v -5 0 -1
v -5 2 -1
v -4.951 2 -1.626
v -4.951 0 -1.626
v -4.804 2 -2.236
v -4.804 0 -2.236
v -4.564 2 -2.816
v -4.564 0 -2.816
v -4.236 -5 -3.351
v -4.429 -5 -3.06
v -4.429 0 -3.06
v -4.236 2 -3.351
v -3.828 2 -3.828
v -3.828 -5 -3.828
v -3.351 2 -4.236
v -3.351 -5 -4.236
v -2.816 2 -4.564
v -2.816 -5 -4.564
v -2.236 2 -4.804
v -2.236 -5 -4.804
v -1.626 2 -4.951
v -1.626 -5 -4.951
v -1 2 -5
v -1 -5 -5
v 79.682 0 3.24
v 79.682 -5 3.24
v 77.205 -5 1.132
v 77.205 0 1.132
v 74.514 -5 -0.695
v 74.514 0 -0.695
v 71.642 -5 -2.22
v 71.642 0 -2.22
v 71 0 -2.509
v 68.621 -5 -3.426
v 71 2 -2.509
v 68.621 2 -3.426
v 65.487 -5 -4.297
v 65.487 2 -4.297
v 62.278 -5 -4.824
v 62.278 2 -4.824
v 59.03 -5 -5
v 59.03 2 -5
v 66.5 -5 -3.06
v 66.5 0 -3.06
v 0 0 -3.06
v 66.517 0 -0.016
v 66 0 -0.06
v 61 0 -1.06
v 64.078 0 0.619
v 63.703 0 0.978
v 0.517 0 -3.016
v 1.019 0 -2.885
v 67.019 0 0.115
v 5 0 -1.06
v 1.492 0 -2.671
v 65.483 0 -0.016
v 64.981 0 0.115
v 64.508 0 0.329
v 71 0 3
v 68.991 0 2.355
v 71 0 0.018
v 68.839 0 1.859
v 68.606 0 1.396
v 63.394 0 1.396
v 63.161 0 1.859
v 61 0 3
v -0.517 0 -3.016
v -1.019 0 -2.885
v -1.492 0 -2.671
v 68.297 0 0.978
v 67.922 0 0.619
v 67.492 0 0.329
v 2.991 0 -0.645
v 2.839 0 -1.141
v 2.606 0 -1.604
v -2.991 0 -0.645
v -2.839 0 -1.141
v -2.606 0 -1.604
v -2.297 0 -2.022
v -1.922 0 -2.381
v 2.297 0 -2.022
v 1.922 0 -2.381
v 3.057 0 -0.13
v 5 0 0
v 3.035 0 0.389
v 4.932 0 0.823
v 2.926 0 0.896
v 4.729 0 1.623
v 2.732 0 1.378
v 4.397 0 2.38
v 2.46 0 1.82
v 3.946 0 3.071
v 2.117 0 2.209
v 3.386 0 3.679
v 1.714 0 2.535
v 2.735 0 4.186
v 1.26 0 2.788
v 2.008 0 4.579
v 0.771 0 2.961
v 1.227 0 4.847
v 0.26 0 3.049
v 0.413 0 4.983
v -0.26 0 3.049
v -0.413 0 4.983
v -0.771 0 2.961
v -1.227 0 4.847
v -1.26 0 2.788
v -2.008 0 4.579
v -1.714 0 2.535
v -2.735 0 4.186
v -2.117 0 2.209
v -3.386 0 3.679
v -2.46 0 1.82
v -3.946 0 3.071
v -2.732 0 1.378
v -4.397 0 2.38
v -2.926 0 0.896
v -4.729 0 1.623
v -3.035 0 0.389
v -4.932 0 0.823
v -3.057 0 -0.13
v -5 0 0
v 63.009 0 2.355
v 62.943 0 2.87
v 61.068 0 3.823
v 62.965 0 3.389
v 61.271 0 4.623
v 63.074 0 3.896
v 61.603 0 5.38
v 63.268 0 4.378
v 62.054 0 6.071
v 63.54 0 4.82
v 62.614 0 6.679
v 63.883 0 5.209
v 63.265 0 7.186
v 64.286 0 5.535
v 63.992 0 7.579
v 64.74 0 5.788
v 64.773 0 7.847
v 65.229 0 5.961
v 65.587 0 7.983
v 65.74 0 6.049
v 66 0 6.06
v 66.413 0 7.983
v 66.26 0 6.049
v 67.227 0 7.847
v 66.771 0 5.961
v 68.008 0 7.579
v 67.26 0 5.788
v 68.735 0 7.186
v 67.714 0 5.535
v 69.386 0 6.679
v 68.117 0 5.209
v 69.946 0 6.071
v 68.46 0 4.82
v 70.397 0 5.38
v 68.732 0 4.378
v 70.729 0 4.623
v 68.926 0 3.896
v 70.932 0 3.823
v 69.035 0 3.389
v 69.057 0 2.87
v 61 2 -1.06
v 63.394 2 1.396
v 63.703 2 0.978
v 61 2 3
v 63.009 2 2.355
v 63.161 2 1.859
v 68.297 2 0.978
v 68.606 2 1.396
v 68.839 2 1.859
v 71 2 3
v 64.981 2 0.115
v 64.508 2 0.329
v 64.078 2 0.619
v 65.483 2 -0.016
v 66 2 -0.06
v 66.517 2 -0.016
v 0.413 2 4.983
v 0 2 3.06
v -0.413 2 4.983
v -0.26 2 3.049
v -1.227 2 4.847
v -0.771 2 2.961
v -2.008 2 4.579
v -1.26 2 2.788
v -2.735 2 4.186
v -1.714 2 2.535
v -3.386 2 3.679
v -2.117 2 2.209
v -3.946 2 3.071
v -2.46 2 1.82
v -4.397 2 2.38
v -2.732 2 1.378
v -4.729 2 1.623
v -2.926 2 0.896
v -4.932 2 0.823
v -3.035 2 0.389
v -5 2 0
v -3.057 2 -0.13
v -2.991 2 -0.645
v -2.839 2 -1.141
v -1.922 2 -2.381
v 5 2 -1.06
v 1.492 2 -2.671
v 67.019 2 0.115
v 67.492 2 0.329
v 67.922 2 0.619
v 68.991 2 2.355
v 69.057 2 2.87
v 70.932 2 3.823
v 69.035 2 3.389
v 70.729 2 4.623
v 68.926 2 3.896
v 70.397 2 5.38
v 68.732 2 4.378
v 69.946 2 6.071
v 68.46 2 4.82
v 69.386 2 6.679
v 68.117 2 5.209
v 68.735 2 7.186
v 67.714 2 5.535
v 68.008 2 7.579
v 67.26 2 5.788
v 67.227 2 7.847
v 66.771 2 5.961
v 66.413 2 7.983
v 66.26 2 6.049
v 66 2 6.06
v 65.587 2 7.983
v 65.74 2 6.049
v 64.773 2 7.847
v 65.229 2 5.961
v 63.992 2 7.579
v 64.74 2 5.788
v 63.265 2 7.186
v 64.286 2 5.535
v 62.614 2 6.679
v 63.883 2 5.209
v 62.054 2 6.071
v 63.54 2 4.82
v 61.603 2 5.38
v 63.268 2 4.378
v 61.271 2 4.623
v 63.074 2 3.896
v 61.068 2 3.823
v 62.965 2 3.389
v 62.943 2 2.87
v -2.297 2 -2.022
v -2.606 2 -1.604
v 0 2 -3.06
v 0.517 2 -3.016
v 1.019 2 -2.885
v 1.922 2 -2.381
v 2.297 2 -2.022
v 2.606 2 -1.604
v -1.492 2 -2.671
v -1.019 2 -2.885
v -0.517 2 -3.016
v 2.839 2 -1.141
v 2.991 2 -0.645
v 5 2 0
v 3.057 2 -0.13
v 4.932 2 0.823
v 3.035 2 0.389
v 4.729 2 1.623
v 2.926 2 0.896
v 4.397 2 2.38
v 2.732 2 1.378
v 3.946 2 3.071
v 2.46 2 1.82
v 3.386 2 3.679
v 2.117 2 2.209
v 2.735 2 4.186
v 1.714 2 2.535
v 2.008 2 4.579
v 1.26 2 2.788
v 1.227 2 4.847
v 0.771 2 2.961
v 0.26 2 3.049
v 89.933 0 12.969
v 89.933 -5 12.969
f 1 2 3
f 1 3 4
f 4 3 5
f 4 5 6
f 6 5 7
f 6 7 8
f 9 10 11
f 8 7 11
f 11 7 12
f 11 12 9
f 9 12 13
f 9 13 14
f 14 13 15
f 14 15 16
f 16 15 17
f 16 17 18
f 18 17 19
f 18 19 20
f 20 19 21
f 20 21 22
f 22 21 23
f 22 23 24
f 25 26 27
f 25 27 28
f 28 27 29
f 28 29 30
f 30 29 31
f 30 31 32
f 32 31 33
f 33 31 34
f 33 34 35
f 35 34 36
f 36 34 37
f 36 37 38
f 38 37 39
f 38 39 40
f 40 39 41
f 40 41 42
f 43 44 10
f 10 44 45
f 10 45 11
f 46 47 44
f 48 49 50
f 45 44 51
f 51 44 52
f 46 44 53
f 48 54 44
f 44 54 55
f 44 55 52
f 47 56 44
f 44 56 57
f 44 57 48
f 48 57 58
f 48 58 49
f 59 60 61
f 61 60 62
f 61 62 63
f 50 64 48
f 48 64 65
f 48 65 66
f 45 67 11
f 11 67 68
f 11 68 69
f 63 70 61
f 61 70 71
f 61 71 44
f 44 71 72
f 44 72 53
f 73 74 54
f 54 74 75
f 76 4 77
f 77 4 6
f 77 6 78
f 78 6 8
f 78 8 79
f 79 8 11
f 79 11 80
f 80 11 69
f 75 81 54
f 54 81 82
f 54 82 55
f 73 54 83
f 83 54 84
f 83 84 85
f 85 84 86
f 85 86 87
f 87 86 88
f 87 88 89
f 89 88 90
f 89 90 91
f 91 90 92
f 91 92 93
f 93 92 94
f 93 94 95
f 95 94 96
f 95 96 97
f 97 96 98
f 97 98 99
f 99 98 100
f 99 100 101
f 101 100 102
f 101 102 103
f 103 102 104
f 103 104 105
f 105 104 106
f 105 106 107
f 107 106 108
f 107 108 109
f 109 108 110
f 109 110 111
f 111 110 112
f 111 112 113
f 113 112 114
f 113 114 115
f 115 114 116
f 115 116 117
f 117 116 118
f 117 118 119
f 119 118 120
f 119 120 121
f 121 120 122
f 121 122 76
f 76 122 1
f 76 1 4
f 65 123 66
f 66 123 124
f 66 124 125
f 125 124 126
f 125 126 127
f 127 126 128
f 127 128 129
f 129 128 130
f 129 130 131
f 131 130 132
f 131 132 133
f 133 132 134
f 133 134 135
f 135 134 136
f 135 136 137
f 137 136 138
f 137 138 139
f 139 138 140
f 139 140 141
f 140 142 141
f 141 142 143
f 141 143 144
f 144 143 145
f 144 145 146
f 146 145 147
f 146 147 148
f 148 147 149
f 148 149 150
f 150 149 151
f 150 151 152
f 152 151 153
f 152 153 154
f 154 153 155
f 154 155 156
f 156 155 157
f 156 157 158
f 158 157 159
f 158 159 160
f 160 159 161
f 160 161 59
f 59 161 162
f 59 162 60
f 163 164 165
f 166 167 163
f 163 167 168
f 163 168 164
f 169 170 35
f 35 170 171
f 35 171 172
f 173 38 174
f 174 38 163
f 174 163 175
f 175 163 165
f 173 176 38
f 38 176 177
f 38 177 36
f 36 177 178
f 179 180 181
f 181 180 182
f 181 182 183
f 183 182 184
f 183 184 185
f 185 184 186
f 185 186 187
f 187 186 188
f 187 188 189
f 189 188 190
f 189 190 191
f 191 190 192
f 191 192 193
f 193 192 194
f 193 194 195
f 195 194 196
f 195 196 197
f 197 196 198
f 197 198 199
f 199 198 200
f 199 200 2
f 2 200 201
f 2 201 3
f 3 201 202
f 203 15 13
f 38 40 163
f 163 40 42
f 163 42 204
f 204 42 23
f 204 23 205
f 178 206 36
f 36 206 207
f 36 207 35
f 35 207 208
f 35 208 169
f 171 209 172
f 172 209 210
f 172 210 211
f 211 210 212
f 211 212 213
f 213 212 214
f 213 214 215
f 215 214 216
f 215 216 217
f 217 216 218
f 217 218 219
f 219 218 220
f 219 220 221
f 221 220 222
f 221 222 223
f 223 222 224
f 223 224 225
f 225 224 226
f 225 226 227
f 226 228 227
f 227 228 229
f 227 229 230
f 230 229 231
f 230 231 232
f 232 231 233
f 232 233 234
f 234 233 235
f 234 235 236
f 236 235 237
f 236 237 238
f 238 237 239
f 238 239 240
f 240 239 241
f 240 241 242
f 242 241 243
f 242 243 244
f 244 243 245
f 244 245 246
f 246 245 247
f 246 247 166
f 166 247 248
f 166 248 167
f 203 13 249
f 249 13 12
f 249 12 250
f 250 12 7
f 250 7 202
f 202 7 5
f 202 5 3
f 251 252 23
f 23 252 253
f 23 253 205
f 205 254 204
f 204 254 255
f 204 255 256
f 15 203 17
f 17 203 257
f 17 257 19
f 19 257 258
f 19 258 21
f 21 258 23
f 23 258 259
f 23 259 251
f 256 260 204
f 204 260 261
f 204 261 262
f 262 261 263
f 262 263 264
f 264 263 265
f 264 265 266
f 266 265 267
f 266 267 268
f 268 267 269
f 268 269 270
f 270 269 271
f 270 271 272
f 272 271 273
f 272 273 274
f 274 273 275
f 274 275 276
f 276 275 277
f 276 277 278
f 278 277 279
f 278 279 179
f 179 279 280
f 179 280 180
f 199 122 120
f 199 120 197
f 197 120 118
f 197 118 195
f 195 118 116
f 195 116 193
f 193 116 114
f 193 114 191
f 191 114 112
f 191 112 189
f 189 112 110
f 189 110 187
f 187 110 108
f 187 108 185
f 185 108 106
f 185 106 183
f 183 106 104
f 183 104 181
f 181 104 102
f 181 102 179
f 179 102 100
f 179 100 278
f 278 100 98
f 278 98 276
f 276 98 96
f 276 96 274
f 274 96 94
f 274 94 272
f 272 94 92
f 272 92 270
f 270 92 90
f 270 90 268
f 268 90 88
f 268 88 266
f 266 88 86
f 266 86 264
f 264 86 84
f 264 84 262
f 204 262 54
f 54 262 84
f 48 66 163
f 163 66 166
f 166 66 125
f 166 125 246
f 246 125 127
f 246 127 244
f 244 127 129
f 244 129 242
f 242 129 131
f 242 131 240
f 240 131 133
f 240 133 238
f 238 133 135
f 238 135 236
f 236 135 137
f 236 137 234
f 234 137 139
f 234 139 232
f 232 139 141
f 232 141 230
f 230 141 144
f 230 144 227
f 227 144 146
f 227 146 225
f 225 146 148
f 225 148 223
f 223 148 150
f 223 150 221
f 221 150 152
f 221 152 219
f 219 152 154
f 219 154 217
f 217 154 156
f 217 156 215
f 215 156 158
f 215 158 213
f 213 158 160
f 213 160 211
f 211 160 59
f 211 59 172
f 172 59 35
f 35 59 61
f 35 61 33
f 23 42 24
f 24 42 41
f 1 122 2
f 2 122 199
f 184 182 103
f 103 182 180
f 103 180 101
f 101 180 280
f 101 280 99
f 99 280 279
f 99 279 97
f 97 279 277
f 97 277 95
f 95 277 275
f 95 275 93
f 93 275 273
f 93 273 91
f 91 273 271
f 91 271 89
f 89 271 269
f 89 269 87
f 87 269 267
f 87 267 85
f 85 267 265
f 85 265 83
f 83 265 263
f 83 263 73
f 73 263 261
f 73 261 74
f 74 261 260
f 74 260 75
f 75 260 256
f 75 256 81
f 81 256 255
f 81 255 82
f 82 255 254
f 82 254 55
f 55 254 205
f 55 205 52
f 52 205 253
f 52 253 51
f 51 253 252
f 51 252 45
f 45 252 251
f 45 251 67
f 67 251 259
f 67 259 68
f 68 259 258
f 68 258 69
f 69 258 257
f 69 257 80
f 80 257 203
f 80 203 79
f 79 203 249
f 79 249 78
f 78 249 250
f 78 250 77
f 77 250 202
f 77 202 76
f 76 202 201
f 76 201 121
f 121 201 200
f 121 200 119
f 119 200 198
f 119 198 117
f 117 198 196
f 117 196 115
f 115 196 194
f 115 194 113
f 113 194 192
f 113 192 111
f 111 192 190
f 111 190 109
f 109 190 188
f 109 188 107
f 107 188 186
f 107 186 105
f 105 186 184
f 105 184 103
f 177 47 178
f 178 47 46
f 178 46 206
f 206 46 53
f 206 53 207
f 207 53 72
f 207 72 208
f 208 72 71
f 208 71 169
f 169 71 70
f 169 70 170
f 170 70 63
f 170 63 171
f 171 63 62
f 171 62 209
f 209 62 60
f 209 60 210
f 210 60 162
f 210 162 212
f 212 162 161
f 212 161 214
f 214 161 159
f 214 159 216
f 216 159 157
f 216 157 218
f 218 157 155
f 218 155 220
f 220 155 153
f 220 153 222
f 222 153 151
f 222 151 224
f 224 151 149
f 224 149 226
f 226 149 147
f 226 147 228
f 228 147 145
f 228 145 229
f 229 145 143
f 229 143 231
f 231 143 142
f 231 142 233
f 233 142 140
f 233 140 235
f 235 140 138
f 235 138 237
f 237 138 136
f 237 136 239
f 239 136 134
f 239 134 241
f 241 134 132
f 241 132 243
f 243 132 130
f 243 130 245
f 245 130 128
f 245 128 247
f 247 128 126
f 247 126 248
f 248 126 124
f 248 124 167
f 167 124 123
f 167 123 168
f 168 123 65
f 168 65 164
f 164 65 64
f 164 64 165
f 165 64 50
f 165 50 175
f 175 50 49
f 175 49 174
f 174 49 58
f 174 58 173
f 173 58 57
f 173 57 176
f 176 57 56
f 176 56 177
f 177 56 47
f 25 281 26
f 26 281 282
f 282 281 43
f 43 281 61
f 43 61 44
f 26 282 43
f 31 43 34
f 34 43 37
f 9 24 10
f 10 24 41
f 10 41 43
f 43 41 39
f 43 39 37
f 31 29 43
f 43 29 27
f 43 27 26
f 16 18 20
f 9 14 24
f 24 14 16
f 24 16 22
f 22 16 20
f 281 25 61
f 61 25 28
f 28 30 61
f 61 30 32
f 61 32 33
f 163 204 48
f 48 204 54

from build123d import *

# Parameters (mm, degrees)
SKETCH1_R           = 3.06
BOSS_EXTRUDE1_DEPTH = 2
BOSS_EXTRUDE3_DEPTH = 5
SKETCH6_W           = 56
SKETCH6_H           = 2
BOSS_EXTRUDE4_DEPTH = 2
FILLET2_R           = 30
FILLET3_R           = 4


with BuildPart() as part:
    # Sketch1 → Boss-Extrude1 (new body)
    with BuildSketch(Plane(origin=(0, 0, 0), x_dir=(1, 0, 0), z_dir=(0, 1, 0))):
        with BuildLine():
            Line((-5, 0), (-5, 5))
            Line((-5, 5), (71, 5))
            Line((71, 5), (71, -3))
            ThreePointArc((71, -3), (66, -8), (61, -3))
            Line((61, -3), (61, 3.06))
            Line((61, 3.06), (5, 3.06))
            Line((5, 3.06), (5, 0))
            ThreePointArc((5, 0), (0, -5), (-5, 0))
        make_face()
        with Locations(Location((0, 0, 0), (0, 0, 270))):
            Circle(SKETCH1_R, mode=Mode.SUBTRACT)
        with Locations(Location((66, -3, 0), (0, 0, 270))):
            Circle(SKETCH1_R, mode=Mode.SUBTRACT)
    extrude(amount=BOSS_EXTRUDE1_DEPTH)

    # Sketch4 → Boss-Extrude3 (add)
    with BuildSketch(Plane(origin=(0, 0, 0), x_dir=(-1, 0, 0), z_dir=(0, -1, 0))):
        Polygon((5, 5), (-71, 5), (-89.933264969, -12.968832246), (-66.5, 3.06), (5, 3.06), align=None)
    extrude(amount=BOSS_EXTRUDE3_DEPTH)

    # Sketch6 → Boss-Extrude4 (add)
    with BuildSketch(Plane(origin=(0, 2, 0), x_dir=(1, 0, 0), z_dir=(0, 1, 0))):
        with Locations((33, 2.06)):
            Rectangle(SKETCH6_W, SKETCH6_H)
    extrude(amount=-BOSS_EXTRUDE4_DEPTH)

    # Fillet2
    # the kernel refuses this fillet: 30 mm, written as the material it takes off along each edge
    with BuildSketch(Plane(origin=(71, 29.924182181, -5), x_dir=(0.7253392750671382, 0, 0.6883915572151349), z_dir=(0, -1, 0))) as fillet2_piece_1:
        with BuildLine():
            CenterArc((FILLET2_R * 0.398989095747, FILLET2_R), FILLET2_R, 226.497078838, 43.502921162)
            Line((-FILLET2_R * 0.289402461469, FILLET2_R * 0.274660724933), (0, 0))
            Line((0, 0), (FILLET2_R * 0.398989095747, 0))
        make_face()
    extrude(amount=64.848364362, mode=Mode.SUBTRACT)

    # Fillet3
    # the kernel refuses this fillet: 4 mm, written as the material it takes off along each edge
    with BuildSketch(Plane(origin=(-5, 12, -5), x_dir=(0, 0, 1), z_dir=(0, -1, 0))) as fillet3_piece_1:
        with BuildLine():
            CenterArc((FILLET3_R, -FILLET3_R), FILLET3_R, 90, 90)
            Line((0, -FILLET3_R), (0, 0))
            Line((0, 0), (FILLET3_R, 0))
        make_face()
    extrude(amount=27, mode=Mode.SUBTRACT)


solid = part.part
